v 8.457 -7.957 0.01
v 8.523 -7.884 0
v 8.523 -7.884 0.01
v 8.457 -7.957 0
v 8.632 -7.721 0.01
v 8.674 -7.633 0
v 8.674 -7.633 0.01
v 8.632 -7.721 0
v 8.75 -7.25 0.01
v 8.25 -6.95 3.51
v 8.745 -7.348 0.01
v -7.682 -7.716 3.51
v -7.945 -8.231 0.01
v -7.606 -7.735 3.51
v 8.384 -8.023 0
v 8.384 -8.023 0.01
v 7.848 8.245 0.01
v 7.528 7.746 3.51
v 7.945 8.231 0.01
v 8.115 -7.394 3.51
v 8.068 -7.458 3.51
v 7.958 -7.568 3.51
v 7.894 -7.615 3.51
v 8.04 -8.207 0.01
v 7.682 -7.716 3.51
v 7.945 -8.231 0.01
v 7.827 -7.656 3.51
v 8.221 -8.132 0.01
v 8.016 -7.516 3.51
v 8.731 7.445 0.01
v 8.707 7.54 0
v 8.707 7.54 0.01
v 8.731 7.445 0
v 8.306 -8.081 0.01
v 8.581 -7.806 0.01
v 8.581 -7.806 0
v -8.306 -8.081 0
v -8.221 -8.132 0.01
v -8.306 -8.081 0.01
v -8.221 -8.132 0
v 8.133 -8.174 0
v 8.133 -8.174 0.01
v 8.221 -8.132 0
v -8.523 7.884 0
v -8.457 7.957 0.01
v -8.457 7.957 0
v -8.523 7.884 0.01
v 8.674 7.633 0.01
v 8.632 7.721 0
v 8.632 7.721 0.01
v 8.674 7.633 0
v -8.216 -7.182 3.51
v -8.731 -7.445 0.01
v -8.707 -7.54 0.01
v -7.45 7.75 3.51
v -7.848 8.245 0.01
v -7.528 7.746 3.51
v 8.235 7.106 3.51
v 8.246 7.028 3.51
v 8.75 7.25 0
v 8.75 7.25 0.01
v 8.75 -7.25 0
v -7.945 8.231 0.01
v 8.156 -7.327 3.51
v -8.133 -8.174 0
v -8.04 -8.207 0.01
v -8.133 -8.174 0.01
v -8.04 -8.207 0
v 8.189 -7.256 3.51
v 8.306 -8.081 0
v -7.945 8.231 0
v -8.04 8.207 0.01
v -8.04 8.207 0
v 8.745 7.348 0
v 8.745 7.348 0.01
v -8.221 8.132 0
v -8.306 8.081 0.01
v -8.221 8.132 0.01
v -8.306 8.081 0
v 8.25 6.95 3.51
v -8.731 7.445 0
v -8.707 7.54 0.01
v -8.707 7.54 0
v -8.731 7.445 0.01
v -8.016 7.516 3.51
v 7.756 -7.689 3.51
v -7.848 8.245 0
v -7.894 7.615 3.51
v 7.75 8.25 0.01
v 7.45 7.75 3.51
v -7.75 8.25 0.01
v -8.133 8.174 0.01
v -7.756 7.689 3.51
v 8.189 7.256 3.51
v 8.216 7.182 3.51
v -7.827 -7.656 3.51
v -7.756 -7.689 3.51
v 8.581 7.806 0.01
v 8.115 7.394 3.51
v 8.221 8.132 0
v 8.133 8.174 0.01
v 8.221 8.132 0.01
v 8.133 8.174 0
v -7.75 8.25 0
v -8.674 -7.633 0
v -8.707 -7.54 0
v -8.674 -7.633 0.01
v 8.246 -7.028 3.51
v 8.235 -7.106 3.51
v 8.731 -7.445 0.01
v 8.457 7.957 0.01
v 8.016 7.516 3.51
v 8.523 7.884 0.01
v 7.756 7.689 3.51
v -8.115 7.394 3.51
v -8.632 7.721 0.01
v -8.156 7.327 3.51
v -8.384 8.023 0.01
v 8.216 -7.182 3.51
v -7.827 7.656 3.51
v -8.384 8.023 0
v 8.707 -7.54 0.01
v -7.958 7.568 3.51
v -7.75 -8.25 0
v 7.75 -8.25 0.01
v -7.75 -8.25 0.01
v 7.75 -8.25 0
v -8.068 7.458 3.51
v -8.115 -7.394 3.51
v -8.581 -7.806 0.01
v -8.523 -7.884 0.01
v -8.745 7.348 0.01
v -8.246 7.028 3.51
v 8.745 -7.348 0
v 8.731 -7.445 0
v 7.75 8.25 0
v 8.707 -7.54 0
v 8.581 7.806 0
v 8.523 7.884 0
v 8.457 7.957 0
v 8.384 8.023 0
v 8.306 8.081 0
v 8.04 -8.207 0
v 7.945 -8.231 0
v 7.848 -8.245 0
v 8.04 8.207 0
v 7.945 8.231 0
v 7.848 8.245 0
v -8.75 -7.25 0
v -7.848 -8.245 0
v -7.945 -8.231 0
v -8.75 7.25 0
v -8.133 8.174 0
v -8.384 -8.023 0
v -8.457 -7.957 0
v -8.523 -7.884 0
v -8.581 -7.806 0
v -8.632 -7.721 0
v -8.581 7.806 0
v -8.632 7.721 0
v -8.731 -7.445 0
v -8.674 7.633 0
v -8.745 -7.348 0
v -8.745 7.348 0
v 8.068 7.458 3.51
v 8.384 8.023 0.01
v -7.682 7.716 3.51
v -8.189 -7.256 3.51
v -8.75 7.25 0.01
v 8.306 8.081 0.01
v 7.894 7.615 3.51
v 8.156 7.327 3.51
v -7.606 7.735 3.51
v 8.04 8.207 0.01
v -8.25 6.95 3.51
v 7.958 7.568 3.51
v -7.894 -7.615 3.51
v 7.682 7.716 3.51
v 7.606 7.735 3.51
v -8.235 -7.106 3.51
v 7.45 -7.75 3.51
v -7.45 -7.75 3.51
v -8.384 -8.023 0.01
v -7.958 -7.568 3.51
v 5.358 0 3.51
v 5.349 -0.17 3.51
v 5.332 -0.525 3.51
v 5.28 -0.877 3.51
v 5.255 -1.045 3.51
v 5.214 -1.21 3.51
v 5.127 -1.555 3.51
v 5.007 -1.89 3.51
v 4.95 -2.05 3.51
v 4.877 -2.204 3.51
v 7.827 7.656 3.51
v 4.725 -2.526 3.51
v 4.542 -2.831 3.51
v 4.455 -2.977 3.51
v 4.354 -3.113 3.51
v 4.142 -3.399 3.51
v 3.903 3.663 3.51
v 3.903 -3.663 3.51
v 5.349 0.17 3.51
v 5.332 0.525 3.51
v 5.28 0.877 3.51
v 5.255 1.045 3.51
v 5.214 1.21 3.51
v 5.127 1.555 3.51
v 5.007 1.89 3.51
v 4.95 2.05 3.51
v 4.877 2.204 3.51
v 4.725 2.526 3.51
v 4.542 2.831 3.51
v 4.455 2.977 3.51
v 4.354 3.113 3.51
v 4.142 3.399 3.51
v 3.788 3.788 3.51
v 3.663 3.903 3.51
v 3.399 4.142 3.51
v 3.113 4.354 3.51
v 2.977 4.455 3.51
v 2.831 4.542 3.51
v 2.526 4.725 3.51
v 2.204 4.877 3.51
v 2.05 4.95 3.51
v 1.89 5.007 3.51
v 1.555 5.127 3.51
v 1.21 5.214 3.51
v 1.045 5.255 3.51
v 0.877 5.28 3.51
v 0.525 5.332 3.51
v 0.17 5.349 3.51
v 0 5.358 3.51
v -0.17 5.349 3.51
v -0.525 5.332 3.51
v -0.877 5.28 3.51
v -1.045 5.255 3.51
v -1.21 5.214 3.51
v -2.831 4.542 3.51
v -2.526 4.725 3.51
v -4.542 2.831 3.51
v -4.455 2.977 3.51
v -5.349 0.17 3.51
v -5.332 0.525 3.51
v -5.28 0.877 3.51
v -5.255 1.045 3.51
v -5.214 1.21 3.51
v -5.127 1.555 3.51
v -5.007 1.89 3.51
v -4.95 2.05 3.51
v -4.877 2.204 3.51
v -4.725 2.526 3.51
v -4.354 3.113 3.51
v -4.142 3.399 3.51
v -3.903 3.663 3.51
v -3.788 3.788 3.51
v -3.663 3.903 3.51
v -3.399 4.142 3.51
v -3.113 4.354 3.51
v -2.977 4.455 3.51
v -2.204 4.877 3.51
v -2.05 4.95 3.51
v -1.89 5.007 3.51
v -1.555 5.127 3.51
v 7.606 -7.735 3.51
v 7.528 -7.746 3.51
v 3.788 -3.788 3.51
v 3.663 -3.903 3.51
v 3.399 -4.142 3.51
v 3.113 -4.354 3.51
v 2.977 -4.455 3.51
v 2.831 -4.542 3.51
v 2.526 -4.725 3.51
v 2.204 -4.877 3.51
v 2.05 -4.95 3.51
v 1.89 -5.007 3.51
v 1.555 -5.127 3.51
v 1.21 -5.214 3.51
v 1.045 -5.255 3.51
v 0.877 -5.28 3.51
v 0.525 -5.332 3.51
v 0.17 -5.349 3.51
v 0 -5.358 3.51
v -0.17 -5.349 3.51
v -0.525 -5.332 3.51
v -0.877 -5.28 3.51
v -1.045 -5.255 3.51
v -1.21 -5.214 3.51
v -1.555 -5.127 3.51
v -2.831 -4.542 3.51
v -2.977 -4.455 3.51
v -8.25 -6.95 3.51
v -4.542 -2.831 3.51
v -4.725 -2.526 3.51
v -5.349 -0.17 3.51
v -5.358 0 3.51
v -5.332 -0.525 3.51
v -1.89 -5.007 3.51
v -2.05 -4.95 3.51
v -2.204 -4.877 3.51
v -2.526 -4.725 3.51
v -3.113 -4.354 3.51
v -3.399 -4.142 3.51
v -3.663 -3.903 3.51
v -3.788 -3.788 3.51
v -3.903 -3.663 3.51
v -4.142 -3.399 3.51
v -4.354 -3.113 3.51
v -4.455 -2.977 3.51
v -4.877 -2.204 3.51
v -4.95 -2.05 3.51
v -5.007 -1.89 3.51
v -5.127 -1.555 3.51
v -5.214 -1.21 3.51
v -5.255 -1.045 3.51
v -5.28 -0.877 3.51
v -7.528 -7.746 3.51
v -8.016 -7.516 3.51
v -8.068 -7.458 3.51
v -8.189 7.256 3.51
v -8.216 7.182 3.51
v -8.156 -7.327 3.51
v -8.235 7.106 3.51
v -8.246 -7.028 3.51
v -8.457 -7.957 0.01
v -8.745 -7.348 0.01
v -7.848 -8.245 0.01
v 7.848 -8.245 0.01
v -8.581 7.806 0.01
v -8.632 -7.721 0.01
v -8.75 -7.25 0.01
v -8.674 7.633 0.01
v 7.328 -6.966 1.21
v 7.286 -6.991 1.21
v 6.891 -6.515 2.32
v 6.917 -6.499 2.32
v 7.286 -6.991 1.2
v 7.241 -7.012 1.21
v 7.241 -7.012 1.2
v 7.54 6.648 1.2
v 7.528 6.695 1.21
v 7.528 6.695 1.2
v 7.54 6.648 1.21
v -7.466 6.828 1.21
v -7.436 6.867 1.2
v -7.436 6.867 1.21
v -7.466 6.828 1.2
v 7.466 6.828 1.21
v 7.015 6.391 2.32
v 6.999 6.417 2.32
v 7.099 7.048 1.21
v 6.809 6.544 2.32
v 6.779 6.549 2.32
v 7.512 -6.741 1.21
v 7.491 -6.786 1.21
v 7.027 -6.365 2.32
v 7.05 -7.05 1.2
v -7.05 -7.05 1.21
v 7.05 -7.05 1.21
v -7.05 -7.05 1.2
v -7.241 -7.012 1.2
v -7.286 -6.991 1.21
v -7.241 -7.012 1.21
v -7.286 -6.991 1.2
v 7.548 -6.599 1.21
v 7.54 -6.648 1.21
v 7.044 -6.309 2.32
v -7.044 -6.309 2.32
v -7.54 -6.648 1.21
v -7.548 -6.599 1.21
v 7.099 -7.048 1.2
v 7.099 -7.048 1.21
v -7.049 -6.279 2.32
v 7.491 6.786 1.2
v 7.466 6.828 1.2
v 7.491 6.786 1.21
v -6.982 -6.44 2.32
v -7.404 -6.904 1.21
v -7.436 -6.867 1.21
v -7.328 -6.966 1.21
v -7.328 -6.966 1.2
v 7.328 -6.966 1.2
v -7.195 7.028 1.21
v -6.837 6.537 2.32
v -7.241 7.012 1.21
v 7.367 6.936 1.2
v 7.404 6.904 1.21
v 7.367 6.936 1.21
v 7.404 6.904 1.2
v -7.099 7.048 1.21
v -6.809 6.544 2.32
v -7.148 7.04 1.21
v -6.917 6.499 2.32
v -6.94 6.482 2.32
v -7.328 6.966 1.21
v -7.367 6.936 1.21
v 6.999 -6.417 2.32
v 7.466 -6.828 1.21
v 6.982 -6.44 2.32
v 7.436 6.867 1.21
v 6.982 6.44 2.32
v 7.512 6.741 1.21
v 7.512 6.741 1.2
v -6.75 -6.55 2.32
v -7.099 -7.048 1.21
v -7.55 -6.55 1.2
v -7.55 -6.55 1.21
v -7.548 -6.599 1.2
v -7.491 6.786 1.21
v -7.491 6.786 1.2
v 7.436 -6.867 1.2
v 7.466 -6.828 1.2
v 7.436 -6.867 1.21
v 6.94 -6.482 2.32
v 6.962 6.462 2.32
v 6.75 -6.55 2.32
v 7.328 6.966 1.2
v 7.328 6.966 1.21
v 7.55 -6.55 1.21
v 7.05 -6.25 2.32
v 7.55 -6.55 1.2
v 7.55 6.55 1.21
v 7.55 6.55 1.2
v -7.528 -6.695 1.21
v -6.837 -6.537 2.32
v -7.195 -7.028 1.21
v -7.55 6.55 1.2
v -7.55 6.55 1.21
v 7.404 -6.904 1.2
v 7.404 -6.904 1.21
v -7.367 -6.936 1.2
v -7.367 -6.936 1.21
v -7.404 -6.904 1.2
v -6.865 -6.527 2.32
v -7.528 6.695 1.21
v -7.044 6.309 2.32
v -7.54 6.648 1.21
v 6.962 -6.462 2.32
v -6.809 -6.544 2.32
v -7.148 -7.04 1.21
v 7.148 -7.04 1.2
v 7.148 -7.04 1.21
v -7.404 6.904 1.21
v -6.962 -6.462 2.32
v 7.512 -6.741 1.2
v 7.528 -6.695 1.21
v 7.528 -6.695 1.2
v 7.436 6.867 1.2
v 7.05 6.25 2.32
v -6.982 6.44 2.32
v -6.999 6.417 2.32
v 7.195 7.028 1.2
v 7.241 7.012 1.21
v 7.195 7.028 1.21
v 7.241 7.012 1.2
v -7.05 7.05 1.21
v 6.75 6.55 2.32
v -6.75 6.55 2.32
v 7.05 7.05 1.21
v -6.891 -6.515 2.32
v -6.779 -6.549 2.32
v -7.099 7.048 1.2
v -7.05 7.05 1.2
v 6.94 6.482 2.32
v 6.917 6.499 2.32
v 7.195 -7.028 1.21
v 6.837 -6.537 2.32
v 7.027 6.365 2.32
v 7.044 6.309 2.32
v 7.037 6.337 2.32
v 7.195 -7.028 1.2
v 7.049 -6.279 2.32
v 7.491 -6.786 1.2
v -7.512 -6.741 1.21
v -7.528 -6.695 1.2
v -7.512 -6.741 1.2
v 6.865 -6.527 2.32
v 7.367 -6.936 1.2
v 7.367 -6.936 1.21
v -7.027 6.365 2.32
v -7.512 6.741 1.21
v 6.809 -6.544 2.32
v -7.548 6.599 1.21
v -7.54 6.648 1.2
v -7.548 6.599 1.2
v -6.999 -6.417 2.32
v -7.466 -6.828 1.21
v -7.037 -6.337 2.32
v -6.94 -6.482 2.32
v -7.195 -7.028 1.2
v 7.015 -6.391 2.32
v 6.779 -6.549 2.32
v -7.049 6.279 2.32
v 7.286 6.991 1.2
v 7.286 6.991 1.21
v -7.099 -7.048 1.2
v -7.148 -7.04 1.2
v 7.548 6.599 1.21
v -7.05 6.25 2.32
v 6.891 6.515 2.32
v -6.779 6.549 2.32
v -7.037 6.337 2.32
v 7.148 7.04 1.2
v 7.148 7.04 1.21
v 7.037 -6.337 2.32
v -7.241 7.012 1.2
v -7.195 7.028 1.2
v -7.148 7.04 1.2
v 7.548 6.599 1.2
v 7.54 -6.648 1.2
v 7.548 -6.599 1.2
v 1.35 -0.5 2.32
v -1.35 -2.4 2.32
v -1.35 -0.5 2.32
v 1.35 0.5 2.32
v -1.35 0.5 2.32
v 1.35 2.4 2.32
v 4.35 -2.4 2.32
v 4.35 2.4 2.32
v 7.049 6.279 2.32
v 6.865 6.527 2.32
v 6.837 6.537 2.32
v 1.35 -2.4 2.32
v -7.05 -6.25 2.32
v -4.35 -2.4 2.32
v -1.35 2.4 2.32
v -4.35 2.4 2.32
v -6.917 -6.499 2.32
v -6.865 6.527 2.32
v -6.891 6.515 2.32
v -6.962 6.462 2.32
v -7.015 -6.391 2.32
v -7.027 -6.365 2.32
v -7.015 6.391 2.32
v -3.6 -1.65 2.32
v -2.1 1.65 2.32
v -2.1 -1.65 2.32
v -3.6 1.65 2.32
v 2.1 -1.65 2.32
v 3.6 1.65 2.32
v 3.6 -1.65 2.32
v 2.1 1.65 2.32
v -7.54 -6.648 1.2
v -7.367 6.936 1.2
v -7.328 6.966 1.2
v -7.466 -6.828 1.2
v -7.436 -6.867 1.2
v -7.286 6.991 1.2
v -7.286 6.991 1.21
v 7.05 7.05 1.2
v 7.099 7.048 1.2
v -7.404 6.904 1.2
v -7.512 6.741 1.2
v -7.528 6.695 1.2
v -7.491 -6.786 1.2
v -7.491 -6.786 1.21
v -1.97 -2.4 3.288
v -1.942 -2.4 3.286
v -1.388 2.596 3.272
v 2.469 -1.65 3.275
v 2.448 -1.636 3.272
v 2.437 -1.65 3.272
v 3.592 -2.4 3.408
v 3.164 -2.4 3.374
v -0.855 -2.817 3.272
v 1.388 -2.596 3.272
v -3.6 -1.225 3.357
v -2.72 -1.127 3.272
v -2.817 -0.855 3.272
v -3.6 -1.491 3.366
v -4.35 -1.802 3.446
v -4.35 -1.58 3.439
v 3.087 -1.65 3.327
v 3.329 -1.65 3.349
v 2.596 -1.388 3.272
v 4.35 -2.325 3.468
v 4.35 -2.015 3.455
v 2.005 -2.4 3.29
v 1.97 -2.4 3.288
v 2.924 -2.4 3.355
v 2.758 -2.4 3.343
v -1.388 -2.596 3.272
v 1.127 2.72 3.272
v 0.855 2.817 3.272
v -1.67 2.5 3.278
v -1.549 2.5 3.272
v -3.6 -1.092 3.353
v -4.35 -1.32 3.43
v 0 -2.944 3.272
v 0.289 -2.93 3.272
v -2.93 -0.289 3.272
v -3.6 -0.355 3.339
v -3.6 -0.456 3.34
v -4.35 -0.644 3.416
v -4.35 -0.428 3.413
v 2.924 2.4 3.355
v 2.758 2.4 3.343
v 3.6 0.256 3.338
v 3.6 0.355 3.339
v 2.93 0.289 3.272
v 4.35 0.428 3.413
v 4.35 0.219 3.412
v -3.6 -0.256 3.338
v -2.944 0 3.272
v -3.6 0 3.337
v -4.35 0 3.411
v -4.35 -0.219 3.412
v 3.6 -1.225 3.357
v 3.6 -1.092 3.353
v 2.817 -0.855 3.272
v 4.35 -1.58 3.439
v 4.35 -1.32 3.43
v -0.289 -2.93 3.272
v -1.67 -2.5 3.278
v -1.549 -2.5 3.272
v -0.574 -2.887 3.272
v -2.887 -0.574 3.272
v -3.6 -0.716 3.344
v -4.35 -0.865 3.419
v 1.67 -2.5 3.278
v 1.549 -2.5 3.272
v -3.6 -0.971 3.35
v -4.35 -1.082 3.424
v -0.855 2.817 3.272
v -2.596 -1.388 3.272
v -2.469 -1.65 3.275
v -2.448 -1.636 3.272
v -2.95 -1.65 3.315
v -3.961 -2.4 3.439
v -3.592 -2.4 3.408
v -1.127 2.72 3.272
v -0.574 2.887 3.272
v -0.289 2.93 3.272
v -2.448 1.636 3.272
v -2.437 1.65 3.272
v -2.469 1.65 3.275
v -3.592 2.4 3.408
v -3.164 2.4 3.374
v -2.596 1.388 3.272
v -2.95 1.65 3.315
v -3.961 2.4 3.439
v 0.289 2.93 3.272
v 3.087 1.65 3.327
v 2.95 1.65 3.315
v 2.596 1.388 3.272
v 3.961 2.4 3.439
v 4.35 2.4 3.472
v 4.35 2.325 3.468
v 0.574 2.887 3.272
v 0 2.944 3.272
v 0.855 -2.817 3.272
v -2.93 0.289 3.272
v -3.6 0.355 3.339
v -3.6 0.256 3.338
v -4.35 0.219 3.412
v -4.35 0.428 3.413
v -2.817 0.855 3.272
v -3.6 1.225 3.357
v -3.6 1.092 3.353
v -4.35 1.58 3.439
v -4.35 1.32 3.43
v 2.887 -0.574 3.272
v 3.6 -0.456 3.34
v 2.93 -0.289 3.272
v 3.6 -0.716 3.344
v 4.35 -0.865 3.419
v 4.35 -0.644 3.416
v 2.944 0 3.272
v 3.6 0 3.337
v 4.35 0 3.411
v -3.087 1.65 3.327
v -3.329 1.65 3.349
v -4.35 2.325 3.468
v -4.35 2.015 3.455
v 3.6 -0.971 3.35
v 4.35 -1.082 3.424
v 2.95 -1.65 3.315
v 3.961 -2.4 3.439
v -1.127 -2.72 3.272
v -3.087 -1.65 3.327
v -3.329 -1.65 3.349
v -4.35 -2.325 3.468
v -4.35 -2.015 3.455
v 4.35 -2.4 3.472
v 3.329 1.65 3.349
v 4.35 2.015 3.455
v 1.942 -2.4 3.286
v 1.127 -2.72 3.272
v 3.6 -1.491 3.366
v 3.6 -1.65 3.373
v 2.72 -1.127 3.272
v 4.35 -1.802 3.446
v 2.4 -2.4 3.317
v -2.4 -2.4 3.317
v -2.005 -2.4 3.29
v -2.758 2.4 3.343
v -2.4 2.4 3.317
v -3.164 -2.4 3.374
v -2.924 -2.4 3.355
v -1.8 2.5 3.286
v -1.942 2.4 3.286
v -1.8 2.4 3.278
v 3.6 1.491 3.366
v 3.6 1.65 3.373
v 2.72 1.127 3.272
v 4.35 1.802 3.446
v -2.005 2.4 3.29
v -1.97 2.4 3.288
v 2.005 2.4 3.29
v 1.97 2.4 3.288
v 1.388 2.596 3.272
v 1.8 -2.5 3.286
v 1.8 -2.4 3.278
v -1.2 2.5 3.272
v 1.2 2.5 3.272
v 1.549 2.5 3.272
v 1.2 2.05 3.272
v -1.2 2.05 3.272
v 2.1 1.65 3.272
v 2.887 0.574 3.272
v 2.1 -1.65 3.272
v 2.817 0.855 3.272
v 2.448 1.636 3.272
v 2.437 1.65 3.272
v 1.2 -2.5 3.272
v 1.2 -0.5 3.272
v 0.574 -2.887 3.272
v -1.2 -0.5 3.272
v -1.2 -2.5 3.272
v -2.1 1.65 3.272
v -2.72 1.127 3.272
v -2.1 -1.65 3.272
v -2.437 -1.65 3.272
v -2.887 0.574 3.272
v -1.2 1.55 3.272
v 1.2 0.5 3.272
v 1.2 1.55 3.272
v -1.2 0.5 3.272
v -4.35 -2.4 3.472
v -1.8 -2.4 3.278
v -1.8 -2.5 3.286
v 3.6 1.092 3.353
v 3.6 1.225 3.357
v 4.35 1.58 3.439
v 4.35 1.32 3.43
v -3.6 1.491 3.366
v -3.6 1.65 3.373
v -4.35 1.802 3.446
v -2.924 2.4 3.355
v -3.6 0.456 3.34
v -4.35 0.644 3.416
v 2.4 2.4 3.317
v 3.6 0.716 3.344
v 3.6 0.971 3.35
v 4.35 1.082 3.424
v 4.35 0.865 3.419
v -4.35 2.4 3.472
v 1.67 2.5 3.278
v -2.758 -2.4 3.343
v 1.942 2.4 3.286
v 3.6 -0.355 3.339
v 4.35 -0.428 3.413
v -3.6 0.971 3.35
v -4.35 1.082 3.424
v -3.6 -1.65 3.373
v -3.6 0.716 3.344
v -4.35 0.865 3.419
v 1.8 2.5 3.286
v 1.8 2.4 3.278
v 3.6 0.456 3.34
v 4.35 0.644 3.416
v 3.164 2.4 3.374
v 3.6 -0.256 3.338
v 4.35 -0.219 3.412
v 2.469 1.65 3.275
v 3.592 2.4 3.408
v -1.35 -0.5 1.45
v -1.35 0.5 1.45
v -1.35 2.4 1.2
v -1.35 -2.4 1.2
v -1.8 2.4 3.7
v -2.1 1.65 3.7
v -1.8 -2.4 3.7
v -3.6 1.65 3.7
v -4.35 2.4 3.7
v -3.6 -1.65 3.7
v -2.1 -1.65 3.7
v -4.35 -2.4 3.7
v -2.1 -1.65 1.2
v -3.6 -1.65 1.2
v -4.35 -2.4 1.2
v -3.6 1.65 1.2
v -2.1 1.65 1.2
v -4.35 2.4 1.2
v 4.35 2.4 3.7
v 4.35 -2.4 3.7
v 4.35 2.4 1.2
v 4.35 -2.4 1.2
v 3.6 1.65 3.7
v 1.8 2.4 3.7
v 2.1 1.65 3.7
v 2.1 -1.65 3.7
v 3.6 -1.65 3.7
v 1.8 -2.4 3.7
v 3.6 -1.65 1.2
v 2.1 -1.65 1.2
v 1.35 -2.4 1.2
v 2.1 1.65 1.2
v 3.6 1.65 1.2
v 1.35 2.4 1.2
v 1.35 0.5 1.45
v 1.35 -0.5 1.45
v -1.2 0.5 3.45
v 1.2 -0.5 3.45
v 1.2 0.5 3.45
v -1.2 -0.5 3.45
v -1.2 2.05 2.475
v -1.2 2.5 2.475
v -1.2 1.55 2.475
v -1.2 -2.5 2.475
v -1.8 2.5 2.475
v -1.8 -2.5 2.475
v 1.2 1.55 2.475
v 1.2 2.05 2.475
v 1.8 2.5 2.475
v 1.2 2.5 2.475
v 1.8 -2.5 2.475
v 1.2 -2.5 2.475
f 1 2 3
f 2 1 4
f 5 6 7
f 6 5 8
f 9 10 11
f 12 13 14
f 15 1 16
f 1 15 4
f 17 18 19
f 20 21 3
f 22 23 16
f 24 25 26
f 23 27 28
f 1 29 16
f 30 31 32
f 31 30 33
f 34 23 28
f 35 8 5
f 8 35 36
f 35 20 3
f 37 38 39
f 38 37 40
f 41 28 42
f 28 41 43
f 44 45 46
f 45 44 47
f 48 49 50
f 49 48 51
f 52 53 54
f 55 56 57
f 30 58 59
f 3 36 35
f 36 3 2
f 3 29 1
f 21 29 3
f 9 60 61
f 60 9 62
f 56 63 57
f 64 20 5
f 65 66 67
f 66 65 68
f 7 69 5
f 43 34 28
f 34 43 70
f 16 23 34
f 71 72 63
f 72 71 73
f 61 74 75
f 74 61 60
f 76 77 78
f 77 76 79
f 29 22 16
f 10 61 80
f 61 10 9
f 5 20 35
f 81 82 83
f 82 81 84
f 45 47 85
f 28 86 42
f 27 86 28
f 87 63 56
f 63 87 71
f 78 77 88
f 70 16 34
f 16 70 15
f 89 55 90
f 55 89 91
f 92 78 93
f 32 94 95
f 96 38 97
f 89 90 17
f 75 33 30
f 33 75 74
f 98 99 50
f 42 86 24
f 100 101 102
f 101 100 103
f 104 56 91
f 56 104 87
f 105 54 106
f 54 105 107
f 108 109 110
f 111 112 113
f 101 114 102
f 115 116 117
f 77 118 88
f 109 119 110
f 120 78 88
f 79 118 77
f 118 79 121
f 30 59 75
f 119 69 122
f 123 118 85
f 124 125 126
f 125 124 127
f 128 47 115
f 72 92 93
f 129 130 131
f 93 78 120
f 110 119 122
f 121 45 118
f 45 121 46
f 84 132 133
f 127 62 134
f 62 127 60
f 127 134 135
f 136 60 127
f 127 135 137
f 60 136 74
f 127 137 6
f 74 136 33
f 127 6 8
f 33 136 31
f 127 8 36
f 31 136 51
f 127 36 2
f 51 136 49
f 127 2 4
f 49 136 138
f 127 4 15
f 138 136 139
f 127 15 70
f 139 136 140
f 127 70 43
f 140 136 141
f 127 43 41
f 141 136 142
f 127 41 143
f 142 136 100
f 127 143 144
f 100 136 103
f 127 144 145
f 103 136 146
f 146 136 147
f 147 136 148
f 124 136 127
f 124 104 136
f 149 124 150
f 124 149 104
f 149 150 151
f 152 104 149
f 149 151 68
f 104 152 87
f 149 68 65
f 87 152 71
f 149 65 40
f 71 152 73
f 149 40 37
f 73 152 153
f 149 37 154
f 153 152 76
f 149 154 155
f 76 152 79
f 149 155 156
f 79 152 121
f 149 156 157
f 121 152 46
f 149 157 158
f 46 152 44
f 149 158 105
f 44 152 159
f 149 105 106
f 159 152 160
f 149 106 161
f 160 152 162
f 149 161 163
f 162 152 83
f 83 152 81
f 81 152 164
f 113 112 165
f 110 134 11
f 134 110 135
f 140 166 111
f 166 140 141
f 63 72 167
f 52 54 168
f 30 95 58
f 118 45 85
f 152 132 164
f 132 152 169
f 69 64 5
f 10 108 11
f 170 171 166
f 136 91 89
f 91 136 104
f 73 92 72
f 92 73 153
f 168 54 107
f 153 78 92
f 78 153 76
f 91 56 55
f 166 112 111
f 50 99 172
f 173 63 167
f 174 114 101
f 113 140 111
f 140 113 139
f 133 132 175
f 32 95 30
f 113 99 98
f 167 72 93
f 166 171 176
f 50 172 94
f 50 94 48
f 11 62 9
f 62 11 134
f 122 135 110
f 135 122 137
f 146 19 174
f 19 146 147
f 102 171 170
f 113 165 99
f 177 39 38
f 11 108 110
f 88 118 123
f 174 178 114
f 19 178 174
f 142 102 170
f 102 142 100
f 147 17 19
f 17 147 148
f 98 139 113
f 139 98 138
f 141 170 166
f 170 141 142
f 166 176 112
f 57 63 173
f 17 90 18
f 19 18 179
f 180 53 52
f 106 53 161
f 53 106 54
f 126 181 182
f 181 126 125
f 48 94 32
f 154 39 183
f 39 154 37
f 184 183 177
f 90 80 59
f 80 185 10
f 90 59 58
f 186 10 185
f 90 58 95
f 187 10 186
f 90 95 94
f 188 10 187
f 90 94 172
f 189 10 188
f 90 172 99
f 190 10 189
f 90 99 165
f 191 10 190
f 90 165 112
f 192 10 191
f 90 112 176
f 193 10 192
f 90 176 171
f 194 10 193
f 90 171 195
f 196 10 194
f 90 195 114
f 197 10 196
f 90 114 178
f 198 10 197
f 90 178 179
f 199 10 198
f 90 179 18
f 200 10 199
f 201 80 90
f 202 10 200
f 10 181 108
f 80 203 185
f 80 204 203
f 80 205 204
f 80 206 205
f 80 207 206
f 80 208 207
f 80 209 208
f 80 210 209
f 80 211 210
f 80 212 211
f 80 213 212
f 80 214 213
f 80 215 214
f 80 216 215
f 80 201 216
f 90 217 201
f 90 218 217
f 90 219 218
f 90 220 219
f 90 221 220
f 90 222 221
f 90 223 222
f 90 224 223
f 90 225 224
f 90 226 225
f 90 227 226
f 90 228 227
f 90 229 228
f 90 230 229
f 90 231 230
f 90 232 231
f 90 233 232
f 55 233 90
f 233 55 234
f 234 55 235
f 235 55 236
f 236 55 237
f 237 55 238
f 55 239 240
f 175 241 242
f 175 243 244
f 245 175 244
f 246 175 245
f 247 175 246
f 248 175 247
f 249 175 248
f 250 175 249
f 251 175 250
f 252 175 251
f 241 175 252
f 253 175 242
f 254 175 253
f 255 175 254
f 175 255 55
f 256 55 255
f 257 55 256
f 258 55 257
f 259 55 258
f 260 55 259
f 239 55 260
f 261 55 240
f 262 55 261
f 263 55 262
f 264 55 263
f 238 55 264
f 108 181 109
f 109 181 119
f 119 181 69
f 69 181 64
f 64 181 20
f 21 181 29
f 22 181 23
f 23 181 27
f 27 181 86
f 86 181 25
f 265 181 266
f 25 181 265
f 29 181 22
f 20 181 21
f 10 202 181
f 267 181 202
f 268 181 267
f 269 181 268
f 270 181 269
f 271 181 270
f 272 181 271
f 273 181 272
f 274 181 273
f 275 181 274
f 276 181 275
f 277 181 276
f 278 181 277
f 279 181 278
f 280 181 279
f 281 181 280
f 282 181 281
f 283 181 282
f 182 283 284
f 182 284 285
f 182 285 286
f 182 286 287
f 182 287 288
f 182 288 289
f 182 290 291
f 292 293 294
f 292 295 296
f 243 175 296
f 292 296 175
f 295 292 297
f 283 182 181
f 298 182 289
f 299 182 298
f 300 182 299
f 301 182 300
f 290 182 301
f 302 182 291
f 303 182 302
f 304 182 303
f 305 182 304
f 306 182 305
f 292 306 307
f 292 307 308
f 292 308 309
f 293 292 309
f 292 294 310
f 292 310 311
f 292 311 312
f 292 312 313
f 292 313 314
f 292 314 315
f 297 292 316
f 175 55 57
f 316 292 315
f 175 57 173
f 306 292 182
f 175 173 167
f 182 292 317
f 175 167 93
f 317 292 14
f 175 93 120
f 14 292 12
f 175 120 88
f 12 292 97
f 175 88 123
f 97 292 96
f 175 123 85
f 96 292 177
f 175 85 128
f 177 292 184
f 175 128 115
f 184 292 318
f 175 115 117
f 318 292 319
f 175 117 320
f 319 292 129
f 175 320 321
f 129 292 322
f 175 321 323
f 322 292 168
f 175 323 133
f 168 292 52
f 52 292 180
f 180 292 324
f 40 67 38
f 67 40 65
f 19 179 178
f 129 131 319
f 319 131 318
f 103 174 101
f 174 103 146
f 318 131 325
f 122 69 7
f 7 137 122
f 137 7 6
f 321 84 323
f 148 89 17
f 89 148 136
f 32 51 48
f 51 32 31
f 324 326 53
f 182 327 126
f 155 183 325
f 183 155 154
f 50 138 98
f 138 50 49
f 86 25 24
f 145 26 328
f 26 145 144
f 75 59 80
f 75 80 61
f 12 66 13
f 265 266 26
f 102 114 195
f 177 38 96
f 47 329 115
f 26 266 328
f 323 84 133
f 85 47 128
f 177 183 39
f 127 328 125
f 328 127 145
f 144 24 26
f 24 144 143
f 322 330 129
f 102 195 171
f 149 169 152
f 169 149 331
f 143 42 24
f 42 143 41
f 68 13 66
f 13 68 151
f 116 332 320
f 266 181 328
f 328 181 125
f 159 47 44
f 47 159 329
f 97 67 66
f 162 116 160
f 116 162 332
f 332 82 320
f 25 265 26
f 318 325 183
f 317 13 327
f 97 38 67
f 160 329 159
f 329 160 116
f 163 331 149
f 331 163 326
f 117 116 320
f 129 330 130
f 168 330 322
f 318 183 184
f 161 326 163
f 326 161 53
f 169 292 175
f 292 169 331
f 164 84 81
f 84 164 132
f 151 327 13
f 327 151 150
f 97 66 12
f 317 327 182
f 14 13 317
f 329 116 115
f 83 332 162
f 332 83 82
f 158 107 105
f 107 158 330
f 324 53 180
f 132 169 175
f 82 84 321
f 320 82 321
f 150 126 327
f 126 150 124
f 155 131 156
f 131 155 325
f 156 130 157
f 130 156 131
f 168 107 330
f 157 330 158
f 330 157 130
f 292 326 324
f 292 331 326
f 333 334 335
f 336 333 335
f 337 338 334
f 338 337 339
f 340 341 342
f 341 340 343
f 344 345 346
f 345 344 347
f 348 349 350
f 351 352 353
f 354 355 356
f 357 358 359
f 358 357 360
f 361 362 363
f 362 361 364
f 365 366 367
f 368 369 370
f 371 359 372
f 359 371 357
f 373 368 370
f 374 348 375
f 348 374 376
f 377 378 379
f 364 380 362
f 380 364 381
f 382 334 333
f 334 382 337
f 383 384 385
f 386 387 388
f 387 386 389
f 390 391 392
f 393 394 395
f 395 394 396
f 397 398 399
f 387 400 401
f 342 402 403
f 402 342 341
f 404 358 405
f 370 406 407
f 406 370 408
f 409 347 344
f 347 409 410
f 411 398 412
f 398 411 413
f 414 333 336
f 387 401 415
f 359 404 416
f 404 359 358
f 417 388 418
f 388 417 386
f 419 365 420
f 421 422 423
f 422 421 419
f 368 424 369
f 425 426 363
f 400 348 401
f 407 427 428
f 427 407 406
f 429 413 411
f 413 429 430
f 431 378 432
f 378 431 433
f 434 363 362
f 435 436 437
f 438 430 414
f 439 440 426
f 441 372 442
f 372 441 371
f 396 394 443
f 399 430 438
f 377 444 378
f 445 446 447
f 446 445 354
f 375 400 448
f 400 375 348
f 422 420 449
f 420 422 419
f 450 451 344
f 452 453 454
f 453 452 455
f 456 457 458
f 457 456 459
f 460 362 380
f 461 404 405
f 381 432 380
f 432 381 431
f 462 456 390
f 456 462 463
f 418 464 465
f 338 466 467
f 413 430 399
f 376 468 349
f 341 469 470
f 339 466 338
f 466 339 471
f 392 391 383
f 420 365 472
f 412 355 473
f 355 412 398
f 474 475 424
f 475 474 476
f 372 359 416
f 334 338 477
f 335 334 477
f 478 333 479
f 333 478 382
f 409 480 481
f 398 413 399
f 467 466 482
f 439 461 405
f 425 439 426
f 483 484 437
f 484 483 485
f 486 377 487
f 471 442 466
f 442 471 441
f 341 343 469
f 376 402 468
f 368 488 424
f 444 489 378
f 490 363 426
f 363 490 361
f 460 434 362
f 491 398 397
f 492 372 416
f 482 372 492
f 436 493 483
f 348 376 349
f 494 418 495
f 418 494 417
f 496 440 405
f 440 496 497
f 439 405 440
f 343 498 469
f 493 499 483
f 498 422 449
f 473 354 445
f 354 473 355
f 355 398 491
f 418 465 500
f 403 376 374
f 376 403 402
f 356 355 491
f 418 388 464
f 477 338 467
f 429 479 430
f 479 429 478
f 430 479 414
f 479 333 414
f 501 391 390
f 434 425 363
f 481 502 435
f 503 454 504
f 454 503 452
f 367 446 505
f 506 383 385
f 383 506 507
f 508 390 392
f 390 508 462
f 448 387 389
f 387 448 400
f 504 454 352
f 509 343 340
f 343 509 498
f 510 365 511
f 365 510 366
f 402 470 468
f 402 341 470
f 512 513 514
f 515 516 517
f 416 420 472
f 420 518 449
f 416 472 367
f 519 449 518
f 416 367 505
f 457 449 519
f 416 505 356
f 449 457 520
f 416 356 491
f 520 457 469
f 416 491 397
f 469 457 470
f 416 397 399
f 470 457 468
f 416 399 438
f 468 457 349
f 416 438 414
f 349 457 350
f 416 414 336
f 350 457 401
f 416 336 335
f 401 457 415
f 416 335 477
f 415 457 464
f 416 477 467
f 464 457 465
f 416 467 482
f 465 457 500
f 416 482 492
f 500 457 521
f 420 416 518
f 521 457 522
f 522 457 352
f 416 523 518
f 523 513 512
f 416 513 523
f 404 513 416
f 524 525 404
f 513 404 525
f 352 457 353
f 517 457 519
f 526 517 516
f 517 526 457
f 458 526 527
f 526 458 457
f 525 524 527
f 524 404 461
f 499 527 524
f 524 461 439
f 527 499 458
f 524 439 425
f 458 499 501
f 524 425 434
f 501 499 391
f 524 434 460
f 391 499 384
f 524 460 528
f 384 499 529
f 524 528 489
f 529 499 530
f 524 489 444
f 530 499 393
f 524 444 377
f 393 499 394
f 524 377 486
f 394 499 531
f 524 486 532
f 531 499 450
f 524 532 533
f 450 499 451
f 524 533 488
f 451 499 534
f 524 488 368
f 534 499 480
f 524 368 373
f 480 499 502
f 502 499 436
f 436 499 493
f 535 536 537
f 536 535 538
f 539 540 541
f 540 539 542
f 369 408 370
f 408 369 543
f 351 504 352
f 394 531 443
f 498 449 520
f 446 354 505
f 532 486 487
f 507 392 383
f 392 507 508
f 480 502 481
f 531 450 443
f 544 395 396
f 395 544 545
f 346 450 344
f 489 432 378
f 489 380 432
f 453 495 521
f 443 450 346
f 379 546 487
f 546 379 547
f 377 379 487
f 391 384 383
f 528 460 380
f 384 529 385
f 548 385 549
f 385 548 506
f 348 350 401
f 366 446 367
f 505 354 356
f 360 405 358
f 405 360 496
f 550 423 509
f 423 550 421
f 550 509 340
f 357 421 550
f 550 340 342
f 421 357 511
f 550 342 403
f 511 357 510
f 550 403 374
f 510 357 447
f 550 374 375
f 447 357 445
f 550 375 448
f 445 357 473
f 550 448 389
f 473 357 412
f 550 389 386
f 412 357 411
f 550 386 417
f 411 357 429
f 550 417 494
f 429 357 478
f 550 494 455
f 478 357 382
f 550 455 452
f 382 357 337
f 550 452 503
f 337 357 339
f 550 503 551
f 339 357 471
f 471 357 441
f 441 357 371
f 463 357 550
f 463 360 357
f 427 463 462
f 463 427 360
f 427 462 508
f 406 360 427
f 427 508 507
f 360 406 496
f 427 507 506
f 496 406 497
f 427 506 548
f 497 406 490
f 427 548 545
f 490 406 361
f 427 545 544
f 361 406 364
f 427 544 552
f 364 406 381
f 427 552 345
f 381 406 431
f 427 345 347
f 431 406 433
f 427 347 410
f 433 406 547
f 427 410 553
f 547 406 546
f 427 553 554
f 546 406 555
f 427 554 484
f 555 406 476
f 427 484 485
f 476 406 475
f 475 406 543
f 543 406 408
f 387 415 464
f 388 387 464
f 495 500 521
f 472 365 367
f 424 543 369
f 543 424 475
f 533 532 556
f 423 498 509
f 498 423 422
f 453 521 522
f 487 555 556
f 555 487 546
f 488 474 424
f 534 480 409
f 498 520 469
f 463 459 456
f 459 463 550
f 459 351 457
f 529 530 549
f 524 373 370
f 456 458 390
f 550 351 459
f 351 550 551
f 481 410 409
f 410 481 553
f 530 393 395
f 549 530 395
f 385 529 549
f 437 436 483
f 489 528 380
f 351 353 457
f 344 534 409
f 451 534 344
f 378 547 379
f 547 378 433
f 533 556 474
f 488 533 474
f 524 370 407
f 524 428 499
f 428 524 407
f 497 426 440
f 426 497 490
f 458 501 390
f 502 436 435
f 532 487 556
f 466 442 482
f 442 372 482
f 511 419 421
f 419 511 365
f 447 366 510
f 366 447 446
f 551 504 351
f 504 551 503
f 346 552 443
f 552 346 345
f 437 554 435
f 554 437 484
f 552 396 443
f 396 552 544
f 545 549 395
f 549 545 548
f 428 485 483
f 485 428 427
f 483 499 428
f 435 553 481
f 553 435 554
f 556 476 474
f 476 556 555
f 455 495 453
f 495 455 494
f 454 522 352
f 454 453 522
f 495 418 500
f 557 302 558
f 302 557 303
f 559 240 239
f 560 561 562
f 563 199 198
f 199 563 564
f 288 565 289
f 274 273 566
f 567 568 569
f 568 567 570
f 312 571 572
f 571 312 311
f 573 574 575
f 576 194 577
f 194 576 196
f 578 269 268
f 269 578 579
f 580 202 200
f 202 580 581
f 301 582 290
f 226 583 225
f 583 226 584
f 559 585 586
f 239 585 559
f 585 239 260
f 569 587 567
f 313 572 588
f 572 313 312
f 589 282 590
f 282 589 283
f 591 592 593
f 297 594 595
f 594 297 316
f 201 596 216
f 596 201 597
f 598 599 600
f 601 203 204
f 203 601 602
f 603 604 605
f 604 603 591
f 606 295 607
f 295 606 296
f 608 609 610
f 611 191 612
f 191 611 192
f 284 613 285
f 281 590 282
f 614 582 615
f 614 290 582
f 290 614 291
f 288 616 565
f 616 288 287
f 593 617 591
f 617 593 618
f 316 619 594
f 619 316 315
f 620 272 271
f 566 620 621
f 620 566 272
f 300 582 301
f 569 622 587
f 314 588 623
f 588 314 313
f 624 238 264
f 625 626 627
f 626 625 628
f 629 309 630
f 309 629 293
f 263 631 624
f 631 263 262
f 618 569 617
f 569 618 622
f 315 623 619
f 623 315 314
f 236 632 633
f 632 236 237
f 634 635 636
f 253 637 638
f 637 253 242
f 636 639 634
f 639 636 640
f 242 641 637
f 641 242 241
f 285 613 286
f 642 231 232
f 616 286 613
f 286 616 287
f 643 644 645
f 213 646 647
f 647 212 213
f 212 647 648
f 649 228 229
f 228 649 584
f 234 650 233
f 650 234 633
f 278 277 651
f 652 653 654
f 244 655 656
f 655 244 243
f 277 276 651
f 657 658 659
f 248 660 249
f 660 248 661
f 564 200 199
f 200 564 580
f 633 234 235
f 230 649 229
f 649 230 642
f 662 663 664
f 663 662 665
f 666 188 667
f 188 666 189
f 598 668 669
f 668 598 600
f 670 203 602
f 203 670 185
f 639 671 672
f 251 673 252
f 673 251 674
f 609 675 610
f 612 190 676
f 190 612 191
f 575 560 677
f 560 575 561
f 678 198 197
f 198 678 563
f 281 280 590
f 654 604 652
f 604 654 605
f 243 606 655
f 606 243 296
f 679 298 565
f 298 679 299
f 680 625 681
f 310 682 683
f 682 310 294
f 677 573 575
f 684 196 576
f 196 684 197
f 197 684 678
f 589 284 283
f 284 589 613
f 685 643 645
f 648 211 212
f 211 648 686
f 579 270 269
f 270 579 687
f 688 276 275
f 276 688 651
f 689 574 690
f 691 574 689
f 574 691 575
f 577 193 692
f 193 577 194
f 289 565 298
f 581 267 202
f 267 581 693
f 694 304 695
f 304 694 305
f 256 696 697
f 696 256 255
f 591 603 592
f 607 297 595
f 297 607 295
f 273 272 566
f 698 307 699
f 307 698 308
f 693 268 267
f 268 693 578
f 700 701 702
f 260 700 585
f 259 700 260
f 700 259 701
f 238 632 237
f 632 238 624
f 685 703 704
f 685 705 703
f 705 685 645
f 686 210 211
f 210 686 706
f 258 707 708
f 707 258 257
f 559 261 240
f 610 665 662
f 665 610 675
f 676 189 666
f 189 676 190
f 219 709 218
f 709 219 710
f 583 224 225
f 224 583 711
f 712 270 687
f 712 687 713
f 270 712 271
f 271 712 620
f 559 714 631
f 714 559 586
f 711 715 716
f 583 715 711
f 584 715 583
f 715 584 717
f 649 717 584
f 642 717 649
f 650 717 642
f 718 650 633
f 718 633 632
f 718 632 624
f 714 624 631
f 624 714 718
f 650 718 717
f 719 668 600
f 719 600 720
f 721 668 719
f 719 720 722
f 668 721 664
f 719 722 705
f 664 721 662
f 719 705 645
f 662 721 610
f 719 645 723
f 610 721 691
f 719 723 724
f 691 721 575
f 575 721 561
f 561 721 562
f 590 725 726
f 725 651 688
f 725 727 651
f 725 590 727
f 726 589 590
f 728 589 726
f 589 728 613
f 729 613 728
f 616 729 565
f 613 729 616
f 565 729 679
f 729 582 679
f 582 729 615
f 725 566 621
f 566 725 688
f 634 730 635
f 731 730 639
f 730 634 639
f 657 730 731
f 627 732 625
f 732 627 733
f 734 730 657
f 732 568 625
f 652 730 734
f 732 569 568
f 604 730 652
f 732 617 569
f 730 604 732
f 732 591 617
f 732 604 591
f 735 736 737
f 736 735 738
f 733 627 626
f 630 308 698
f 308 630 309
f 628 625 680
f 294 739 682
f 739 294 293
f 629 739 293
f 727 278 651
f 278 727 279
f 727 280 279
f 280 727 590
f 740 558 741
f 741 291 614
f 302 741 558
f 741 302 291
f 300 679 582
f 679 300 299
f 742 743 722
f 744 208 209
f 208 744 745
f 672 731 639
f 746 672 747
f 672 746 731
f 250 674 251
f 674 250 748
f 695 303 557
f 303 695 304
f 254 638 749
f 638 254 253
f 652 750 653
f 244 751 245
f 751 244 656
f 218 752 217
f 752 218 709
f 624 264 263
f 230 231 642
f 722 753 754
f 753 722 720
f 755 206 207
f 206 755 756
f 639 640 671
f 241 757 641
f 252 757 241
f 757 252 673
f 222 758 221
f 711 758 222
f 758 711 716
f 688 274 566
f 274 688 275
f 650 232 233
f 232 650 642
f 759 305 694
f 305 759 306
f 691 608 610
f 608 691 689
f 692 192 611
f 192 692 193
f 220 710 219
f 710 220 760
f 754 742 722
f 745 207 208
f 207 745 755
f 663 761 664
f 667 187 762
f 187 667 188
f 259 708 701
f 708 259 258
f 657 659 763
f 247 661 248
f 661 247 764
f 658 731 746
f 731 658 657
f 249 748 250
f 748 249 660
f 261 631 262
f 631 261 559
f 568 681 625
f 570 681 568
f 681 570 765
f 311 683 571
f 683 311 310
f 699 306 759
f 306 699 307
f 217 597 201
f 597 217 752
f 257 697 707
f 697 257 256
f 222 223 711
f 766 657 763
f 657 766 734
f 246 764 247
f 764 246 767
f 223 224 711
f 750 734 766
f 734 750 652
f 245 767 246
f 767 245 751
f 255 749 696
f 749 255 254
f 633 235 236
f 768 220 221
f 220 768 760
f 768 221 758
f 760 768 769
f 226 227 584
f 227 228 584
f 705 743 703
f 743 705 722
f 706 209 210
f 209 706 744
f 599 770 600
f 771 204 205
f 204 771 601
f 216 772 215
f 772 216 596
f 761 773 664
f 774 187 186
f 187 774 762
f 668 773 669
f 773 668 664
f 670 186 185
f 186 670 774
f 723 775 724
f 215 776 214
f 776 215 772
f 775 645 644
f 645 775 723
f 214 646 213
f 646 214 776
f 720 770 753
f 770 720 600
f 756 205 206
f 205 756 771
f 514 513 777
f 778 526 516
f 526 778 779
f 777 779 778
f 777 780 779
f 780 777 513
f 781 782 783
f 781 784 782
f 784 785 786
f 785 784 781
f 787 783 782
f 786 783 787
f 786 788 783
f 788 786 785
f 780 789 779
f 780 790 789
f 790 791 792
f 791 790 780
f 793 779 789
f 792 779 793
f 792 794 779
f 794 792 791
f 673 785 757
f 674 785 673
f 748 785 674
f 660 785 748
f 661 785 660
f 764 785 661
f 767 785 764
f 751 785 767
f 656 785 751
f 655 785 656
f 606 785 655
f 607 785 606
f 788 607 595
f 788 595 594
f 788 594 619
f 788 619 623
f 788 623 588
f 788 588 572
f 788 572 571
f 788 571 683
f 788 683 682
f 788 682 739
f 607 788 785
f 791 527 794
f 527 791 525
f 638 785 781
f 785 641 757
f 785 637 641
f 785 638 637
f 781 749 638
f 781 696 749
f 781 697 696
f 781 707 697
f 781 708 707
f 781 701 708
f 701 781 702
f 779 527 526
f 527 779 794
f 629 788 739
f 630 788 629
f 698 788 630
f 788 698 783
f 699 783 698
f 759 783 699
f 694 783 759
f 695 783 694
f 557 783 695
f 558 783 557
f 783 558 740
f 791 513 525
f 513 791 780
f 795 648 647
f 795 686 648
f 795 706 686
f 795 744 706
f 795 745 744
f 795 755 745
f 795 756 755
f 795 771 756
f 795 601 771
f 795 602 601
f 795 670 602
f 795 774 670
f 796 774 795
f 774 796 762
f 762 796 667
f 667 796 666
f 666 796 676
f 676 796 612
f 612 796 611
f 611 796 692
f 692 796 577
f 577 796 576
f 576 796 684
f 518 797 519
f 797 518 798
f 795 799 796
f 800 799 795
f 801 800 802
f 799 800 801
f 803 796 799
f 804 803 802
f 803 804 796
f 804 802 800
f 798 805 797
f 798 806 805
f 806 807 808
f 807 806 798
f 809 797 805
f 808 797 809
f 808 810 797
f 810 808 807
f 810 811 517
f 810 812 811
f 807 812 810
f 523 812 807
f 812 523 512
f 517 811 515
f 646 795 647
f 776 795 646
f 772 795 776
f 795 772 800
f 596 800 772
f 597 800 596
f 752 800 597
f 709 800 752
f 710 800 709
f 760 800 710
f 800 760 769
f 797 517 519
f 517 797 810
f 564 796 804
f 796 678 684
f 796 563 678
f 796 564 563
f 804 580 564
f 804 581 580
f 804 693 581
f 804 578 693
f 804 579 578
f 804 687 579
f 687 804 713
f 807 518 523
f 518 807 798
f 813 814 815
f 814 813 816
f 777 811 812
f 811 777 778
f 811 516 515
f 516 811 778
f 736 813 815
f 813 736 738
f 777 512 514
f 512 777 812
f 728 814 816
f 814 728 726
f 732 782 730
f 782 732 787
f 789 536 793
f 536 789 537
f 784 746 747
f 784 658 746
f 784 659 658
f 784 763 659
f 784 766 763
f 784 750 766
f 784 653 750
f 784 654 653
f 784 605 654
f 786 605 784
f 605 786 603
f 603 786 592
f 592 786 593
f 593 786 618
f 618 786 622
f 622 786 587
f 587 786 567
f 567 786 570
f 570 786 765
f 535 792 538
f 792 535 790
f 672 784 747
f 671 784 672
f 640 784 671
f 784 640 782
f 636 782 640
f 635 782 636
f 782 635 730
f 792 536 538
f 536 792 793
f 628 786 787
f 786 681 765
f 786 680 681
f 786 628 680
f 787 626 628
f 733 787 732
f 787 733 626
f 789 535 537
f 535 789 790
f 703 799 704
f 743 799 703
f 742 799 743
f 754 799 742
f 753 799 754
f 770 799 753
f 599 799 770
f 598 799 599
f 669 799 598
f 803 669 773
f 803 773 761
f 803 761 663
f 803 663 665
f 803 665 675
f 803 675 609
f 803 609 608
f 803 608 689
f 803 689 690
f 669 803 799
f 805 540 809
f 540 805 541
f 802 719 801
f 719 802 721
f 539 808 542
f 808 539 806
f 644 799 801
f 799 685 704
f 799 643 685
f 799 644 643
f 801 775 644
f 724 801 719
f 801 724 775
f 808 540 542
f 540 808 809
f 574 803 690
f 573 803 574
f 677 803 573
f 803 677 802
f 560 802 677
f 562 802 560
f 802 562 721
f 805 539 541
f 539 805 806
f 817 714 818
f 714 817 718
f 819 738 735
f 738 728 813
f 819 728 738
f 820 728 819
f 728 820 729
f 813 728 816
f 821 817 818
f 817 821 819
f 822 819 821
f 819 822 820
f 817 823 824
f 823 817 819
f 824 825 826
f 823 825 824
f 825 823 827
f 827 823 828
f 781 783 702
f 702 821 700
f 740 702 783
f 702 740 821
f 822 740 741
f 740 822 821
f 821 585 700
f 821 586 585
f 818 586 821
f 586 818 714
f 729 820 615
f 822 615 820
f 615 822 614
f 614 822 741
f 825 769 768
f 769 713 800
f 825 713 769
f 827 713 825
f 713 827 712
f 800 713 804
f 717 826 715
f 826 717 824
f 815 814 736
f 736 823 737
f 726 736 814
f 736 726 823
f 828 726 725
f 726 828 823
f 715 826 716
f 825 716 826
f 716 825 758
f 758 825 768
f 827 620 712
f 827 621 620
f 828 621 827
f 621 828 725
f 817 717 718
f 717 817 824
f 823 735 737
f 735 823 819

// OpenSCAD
// 間 (Ma) Keycap — Kailh Choc v1 Low-Profile
// A keycap with an embossed gate relief on the top face.
// 間 means "moonlight through a gate" — the gap IS the design.
// Subtractive design made physical.
//
// Kira Omanyte, 2026-03-03
// Profile: Low-profile flat (Choc-native)
// Compatibility: Kailh Choc v1 (PG1350) switches
// Print orientation: face-down (top surface on build plate for best finish)
//
// Dimensions sourced from:
//   - KeyV2 (rsheldiii): $choc_stem = [1.2, 3], spacing 5.7mm
//   - Kailh PG1350 datasheet
//   - CFX/MBK keycap references
//
// Addressing feedback on v1 (Cherry MX version):
//   1. No through-hole — gate is embossed (indented), not cut through
//   2. Embossed instead of raised — for finger feel
//   3. Proper Choc v1 stem — two rectangular posts
//   4. Print face-down for best top surface quality

$fn = 64;

// === Keycap Parameters ===

// Choc 1U keycap — MBK-style dimensions
cap_w = 17.5;        // width (mm) — MBK standard
cap_d = 16.5;        // depth (mm) — MBK standard
cap_h = 3.5;         // total keycap height (low profile)
wall = 1.2;          // wall thickness
corner_r = 1.0;      // corner rounding radius
top_inset = 0.5;     // how much the top face is narrower than bottom (per side)

// Top surface
dish_depth = 0.3;    // very gentle concavity
dish_radius = 60;    // large radius = subtle curve

// === Choc v1 Stem Parameters ===
// Two rectangular posts, not a cross
// Dimensions from KeyV2: [1.2, 3.0], spacing 5.7mm center-to-center
// The keycap has *sockets* (holes) that fit over the switch's posts
// Tolerances for FDM: posts on switch are 1.2 x 3.0
// Socket should be slightly larger for fit

stem_post_w = 1.2;       // switch post width (narrow dimension)
stem_post_l = 3.0;       // switch post length (long dimension)
stem_spacing = 5.7;      // center-to-center distance between posts
stem_slop = 0.15;        // tolerance (per side) — tighter than KeyV2's 0.35 for FDM
stem_socket_depth = 2.5; // how deep the socket goes into the keycap
stem_housing_w = 3.0;    // housing wall around each socket
stem_housing_l = 4.8;    // housing length around each socket

// Bridge between stem housings for rigidity
stem_bridge_w = 1.0;     // width of connecting bridge
stem_bridge_h = 2.0;     // height of bridge

// === Gate Design (間 — Embossed) ===
// The gate is embossed INTO the top surface — a tactile indentation
// Two vertical channels (the pillars) and a horizontal lintel channel
// The void between them — the untouched ridge — is the moonlight
// Compact and centered within the flat top surface area

gate_channel_w = 0.6;     // width of each embossed channel
gate_channel_depth = 0.35; // how deep the embossing goes (subtle)
gate_total_h = 5.0;       // total vertical span of the gate pattern
gate_pillar_spacing = 3.0; // distance between the two pillar channels (center-to-center)
gate_lintel_y = 1.8;      // y-offset of lintel from center (toward top of gate)
gate_lintel_w = 0.5;      // width of lintel channel
// Bounding: keep all embossing within an 8mm × 8mm area centered on the top face

// === Modules ===

// Rounded rectangle (2D profile)
module rrect(w, h, r) {
    offset(r) offset(-r) square([w, h], center = true);
}

// Keycap body — slightly tapered box
module keycap_body() {
    hull() {
        // Bottom face (wider)
        linear_extrude(0.01)
            rrect(cap_w, cap_d, corner_r);
        // Top face (slightly narrower)
        translate([0, 0, cap_h])
            linear_extrude(0.01)
                rrect(cap_w - top_inset * 2, cap_d - top_inset * 2, corner_r * 0.8);
    }
}

// Hollow interior — thins the walls, saves material
module keycap_hollow() {
    iw = cap_w - wall * 2;
    id = cap_d - wall * 2;
    iw_top = cap_w - top_inset * 2 - wall * 2;
    id_top = cap_d - top_inset * 2 - wall * 2;

    hull() {
        translate([0, 0, wall])
            linear_extrude(0.01)
                rrect(iw, id, corner_r * 0.5);
        translate([0, 0, cap_h - wall + 0.01])
            linear_extrude(0.01)
                rrect(iw_top, id_top, corner_r * 0.3);
    }
}

// Gentle dish on top surface
module dish() {
    translate([0, 0, cap_h + dish_radius - dish_depth])
        sphere(r = dish_radius);
}

// Single stem socket (the hole the switch post fits into)
module stem_socket() {
    sw = stem_post_w + stem_slop * 2;
    sl = stem_post_l + stem_slop * 2;

    translate([0, 0, -0.1])
        cube([sw, sl, stem_socket_depth + 0.2], center = true);
}

// Single stem housing (solid block around the socket)
module stem_housing() {
    cube([stem_housing_w, stem_housing_l, stem_socket_depth], center = true);
}

// Complete Choc stem assembly
module choc_stem() {
    translate([0, 0, wall + stem_socket_depth / 2]) {
        difference() {
            union() {
                // Left housing
                translate([-stem_spacing / 2, 0, 0])
                    stem_housing();

                // Right housing
                translate([stem_spacing / 2, 0, 0])
                    stem_housing();

                // Bridge between housings
                cube([stem_spacing - stem_housing_w + 0.1, stem_bridge_w, stem_bridge_h], center = true);
            }

            // Left socket
            translate([-stem_spacing / 2, 0, 0])
                stem_socket();

            // Right socket
            translate([stem_spacing / 2, 0, 0])
                stem_socket();
        }
    }
}

// Gate embossing — channels cut INTO the top surface
// The design: two vertical channels (pillar shadows) and a horizontal lintel
// What's LEFT between them — the untouched ridge — is the moonlight
// Intersected with a bounding volume to prevent cutting into side walls
module gate_emboss() {
    // Bounding box: only cut within the flat top surface area
    bound_w = cap_w - wall * 2 - top_inset * 2 - 1.0;
    bound_d = cap_d - wall * 2 - top_inset * 2 - 1.0;

    intersection() {
        // Bounding volume centered on top face
        translate([0, 0, cap_h - gate_channel_depth - 0.1])
            cube([bound_w, bound_d, gate_channel_depth + 2], center = true);

        // The actual gate channels
        translate([0, 0, cap_h - gate_channel_depth]) {
            // Left pillar channel (vertical)
            translate([-gate_pillar_spacing / 2, 0, 0])
                cube([gate_channel_w, gate_total_h, gate_channel_depth + 1], center = true);

            // Right pillar channel (vertical)
            translate([gate_pillar_spacing / 2, 0, 0])
                cube([gate_channel_w, gate_total_h, gate_channel_depth + 1], center = true);

            // Lintel channel (horizontal, near top)
            translate([0, gate_lintel_y, 0])
                cube([gate_pillar_spacing + gate_channel_w, gate_lintel_w, gate_channel_depth + 1], center = true);
        }
    }
}

// === Assembly ===

module ma_keycap_choc() {
    difference() {
        union() {
            // Shell: body minus hollow minus dish
            difference() {
                keycap_body();
                keycap_hollow();
                dish();
            }

            // Choc v1 stem
            choc_stem();
        }

        // Gate embossing (subtractive — cuts into top surface)
        gate_emboss();
    }
}

ma_keycap_choc();
